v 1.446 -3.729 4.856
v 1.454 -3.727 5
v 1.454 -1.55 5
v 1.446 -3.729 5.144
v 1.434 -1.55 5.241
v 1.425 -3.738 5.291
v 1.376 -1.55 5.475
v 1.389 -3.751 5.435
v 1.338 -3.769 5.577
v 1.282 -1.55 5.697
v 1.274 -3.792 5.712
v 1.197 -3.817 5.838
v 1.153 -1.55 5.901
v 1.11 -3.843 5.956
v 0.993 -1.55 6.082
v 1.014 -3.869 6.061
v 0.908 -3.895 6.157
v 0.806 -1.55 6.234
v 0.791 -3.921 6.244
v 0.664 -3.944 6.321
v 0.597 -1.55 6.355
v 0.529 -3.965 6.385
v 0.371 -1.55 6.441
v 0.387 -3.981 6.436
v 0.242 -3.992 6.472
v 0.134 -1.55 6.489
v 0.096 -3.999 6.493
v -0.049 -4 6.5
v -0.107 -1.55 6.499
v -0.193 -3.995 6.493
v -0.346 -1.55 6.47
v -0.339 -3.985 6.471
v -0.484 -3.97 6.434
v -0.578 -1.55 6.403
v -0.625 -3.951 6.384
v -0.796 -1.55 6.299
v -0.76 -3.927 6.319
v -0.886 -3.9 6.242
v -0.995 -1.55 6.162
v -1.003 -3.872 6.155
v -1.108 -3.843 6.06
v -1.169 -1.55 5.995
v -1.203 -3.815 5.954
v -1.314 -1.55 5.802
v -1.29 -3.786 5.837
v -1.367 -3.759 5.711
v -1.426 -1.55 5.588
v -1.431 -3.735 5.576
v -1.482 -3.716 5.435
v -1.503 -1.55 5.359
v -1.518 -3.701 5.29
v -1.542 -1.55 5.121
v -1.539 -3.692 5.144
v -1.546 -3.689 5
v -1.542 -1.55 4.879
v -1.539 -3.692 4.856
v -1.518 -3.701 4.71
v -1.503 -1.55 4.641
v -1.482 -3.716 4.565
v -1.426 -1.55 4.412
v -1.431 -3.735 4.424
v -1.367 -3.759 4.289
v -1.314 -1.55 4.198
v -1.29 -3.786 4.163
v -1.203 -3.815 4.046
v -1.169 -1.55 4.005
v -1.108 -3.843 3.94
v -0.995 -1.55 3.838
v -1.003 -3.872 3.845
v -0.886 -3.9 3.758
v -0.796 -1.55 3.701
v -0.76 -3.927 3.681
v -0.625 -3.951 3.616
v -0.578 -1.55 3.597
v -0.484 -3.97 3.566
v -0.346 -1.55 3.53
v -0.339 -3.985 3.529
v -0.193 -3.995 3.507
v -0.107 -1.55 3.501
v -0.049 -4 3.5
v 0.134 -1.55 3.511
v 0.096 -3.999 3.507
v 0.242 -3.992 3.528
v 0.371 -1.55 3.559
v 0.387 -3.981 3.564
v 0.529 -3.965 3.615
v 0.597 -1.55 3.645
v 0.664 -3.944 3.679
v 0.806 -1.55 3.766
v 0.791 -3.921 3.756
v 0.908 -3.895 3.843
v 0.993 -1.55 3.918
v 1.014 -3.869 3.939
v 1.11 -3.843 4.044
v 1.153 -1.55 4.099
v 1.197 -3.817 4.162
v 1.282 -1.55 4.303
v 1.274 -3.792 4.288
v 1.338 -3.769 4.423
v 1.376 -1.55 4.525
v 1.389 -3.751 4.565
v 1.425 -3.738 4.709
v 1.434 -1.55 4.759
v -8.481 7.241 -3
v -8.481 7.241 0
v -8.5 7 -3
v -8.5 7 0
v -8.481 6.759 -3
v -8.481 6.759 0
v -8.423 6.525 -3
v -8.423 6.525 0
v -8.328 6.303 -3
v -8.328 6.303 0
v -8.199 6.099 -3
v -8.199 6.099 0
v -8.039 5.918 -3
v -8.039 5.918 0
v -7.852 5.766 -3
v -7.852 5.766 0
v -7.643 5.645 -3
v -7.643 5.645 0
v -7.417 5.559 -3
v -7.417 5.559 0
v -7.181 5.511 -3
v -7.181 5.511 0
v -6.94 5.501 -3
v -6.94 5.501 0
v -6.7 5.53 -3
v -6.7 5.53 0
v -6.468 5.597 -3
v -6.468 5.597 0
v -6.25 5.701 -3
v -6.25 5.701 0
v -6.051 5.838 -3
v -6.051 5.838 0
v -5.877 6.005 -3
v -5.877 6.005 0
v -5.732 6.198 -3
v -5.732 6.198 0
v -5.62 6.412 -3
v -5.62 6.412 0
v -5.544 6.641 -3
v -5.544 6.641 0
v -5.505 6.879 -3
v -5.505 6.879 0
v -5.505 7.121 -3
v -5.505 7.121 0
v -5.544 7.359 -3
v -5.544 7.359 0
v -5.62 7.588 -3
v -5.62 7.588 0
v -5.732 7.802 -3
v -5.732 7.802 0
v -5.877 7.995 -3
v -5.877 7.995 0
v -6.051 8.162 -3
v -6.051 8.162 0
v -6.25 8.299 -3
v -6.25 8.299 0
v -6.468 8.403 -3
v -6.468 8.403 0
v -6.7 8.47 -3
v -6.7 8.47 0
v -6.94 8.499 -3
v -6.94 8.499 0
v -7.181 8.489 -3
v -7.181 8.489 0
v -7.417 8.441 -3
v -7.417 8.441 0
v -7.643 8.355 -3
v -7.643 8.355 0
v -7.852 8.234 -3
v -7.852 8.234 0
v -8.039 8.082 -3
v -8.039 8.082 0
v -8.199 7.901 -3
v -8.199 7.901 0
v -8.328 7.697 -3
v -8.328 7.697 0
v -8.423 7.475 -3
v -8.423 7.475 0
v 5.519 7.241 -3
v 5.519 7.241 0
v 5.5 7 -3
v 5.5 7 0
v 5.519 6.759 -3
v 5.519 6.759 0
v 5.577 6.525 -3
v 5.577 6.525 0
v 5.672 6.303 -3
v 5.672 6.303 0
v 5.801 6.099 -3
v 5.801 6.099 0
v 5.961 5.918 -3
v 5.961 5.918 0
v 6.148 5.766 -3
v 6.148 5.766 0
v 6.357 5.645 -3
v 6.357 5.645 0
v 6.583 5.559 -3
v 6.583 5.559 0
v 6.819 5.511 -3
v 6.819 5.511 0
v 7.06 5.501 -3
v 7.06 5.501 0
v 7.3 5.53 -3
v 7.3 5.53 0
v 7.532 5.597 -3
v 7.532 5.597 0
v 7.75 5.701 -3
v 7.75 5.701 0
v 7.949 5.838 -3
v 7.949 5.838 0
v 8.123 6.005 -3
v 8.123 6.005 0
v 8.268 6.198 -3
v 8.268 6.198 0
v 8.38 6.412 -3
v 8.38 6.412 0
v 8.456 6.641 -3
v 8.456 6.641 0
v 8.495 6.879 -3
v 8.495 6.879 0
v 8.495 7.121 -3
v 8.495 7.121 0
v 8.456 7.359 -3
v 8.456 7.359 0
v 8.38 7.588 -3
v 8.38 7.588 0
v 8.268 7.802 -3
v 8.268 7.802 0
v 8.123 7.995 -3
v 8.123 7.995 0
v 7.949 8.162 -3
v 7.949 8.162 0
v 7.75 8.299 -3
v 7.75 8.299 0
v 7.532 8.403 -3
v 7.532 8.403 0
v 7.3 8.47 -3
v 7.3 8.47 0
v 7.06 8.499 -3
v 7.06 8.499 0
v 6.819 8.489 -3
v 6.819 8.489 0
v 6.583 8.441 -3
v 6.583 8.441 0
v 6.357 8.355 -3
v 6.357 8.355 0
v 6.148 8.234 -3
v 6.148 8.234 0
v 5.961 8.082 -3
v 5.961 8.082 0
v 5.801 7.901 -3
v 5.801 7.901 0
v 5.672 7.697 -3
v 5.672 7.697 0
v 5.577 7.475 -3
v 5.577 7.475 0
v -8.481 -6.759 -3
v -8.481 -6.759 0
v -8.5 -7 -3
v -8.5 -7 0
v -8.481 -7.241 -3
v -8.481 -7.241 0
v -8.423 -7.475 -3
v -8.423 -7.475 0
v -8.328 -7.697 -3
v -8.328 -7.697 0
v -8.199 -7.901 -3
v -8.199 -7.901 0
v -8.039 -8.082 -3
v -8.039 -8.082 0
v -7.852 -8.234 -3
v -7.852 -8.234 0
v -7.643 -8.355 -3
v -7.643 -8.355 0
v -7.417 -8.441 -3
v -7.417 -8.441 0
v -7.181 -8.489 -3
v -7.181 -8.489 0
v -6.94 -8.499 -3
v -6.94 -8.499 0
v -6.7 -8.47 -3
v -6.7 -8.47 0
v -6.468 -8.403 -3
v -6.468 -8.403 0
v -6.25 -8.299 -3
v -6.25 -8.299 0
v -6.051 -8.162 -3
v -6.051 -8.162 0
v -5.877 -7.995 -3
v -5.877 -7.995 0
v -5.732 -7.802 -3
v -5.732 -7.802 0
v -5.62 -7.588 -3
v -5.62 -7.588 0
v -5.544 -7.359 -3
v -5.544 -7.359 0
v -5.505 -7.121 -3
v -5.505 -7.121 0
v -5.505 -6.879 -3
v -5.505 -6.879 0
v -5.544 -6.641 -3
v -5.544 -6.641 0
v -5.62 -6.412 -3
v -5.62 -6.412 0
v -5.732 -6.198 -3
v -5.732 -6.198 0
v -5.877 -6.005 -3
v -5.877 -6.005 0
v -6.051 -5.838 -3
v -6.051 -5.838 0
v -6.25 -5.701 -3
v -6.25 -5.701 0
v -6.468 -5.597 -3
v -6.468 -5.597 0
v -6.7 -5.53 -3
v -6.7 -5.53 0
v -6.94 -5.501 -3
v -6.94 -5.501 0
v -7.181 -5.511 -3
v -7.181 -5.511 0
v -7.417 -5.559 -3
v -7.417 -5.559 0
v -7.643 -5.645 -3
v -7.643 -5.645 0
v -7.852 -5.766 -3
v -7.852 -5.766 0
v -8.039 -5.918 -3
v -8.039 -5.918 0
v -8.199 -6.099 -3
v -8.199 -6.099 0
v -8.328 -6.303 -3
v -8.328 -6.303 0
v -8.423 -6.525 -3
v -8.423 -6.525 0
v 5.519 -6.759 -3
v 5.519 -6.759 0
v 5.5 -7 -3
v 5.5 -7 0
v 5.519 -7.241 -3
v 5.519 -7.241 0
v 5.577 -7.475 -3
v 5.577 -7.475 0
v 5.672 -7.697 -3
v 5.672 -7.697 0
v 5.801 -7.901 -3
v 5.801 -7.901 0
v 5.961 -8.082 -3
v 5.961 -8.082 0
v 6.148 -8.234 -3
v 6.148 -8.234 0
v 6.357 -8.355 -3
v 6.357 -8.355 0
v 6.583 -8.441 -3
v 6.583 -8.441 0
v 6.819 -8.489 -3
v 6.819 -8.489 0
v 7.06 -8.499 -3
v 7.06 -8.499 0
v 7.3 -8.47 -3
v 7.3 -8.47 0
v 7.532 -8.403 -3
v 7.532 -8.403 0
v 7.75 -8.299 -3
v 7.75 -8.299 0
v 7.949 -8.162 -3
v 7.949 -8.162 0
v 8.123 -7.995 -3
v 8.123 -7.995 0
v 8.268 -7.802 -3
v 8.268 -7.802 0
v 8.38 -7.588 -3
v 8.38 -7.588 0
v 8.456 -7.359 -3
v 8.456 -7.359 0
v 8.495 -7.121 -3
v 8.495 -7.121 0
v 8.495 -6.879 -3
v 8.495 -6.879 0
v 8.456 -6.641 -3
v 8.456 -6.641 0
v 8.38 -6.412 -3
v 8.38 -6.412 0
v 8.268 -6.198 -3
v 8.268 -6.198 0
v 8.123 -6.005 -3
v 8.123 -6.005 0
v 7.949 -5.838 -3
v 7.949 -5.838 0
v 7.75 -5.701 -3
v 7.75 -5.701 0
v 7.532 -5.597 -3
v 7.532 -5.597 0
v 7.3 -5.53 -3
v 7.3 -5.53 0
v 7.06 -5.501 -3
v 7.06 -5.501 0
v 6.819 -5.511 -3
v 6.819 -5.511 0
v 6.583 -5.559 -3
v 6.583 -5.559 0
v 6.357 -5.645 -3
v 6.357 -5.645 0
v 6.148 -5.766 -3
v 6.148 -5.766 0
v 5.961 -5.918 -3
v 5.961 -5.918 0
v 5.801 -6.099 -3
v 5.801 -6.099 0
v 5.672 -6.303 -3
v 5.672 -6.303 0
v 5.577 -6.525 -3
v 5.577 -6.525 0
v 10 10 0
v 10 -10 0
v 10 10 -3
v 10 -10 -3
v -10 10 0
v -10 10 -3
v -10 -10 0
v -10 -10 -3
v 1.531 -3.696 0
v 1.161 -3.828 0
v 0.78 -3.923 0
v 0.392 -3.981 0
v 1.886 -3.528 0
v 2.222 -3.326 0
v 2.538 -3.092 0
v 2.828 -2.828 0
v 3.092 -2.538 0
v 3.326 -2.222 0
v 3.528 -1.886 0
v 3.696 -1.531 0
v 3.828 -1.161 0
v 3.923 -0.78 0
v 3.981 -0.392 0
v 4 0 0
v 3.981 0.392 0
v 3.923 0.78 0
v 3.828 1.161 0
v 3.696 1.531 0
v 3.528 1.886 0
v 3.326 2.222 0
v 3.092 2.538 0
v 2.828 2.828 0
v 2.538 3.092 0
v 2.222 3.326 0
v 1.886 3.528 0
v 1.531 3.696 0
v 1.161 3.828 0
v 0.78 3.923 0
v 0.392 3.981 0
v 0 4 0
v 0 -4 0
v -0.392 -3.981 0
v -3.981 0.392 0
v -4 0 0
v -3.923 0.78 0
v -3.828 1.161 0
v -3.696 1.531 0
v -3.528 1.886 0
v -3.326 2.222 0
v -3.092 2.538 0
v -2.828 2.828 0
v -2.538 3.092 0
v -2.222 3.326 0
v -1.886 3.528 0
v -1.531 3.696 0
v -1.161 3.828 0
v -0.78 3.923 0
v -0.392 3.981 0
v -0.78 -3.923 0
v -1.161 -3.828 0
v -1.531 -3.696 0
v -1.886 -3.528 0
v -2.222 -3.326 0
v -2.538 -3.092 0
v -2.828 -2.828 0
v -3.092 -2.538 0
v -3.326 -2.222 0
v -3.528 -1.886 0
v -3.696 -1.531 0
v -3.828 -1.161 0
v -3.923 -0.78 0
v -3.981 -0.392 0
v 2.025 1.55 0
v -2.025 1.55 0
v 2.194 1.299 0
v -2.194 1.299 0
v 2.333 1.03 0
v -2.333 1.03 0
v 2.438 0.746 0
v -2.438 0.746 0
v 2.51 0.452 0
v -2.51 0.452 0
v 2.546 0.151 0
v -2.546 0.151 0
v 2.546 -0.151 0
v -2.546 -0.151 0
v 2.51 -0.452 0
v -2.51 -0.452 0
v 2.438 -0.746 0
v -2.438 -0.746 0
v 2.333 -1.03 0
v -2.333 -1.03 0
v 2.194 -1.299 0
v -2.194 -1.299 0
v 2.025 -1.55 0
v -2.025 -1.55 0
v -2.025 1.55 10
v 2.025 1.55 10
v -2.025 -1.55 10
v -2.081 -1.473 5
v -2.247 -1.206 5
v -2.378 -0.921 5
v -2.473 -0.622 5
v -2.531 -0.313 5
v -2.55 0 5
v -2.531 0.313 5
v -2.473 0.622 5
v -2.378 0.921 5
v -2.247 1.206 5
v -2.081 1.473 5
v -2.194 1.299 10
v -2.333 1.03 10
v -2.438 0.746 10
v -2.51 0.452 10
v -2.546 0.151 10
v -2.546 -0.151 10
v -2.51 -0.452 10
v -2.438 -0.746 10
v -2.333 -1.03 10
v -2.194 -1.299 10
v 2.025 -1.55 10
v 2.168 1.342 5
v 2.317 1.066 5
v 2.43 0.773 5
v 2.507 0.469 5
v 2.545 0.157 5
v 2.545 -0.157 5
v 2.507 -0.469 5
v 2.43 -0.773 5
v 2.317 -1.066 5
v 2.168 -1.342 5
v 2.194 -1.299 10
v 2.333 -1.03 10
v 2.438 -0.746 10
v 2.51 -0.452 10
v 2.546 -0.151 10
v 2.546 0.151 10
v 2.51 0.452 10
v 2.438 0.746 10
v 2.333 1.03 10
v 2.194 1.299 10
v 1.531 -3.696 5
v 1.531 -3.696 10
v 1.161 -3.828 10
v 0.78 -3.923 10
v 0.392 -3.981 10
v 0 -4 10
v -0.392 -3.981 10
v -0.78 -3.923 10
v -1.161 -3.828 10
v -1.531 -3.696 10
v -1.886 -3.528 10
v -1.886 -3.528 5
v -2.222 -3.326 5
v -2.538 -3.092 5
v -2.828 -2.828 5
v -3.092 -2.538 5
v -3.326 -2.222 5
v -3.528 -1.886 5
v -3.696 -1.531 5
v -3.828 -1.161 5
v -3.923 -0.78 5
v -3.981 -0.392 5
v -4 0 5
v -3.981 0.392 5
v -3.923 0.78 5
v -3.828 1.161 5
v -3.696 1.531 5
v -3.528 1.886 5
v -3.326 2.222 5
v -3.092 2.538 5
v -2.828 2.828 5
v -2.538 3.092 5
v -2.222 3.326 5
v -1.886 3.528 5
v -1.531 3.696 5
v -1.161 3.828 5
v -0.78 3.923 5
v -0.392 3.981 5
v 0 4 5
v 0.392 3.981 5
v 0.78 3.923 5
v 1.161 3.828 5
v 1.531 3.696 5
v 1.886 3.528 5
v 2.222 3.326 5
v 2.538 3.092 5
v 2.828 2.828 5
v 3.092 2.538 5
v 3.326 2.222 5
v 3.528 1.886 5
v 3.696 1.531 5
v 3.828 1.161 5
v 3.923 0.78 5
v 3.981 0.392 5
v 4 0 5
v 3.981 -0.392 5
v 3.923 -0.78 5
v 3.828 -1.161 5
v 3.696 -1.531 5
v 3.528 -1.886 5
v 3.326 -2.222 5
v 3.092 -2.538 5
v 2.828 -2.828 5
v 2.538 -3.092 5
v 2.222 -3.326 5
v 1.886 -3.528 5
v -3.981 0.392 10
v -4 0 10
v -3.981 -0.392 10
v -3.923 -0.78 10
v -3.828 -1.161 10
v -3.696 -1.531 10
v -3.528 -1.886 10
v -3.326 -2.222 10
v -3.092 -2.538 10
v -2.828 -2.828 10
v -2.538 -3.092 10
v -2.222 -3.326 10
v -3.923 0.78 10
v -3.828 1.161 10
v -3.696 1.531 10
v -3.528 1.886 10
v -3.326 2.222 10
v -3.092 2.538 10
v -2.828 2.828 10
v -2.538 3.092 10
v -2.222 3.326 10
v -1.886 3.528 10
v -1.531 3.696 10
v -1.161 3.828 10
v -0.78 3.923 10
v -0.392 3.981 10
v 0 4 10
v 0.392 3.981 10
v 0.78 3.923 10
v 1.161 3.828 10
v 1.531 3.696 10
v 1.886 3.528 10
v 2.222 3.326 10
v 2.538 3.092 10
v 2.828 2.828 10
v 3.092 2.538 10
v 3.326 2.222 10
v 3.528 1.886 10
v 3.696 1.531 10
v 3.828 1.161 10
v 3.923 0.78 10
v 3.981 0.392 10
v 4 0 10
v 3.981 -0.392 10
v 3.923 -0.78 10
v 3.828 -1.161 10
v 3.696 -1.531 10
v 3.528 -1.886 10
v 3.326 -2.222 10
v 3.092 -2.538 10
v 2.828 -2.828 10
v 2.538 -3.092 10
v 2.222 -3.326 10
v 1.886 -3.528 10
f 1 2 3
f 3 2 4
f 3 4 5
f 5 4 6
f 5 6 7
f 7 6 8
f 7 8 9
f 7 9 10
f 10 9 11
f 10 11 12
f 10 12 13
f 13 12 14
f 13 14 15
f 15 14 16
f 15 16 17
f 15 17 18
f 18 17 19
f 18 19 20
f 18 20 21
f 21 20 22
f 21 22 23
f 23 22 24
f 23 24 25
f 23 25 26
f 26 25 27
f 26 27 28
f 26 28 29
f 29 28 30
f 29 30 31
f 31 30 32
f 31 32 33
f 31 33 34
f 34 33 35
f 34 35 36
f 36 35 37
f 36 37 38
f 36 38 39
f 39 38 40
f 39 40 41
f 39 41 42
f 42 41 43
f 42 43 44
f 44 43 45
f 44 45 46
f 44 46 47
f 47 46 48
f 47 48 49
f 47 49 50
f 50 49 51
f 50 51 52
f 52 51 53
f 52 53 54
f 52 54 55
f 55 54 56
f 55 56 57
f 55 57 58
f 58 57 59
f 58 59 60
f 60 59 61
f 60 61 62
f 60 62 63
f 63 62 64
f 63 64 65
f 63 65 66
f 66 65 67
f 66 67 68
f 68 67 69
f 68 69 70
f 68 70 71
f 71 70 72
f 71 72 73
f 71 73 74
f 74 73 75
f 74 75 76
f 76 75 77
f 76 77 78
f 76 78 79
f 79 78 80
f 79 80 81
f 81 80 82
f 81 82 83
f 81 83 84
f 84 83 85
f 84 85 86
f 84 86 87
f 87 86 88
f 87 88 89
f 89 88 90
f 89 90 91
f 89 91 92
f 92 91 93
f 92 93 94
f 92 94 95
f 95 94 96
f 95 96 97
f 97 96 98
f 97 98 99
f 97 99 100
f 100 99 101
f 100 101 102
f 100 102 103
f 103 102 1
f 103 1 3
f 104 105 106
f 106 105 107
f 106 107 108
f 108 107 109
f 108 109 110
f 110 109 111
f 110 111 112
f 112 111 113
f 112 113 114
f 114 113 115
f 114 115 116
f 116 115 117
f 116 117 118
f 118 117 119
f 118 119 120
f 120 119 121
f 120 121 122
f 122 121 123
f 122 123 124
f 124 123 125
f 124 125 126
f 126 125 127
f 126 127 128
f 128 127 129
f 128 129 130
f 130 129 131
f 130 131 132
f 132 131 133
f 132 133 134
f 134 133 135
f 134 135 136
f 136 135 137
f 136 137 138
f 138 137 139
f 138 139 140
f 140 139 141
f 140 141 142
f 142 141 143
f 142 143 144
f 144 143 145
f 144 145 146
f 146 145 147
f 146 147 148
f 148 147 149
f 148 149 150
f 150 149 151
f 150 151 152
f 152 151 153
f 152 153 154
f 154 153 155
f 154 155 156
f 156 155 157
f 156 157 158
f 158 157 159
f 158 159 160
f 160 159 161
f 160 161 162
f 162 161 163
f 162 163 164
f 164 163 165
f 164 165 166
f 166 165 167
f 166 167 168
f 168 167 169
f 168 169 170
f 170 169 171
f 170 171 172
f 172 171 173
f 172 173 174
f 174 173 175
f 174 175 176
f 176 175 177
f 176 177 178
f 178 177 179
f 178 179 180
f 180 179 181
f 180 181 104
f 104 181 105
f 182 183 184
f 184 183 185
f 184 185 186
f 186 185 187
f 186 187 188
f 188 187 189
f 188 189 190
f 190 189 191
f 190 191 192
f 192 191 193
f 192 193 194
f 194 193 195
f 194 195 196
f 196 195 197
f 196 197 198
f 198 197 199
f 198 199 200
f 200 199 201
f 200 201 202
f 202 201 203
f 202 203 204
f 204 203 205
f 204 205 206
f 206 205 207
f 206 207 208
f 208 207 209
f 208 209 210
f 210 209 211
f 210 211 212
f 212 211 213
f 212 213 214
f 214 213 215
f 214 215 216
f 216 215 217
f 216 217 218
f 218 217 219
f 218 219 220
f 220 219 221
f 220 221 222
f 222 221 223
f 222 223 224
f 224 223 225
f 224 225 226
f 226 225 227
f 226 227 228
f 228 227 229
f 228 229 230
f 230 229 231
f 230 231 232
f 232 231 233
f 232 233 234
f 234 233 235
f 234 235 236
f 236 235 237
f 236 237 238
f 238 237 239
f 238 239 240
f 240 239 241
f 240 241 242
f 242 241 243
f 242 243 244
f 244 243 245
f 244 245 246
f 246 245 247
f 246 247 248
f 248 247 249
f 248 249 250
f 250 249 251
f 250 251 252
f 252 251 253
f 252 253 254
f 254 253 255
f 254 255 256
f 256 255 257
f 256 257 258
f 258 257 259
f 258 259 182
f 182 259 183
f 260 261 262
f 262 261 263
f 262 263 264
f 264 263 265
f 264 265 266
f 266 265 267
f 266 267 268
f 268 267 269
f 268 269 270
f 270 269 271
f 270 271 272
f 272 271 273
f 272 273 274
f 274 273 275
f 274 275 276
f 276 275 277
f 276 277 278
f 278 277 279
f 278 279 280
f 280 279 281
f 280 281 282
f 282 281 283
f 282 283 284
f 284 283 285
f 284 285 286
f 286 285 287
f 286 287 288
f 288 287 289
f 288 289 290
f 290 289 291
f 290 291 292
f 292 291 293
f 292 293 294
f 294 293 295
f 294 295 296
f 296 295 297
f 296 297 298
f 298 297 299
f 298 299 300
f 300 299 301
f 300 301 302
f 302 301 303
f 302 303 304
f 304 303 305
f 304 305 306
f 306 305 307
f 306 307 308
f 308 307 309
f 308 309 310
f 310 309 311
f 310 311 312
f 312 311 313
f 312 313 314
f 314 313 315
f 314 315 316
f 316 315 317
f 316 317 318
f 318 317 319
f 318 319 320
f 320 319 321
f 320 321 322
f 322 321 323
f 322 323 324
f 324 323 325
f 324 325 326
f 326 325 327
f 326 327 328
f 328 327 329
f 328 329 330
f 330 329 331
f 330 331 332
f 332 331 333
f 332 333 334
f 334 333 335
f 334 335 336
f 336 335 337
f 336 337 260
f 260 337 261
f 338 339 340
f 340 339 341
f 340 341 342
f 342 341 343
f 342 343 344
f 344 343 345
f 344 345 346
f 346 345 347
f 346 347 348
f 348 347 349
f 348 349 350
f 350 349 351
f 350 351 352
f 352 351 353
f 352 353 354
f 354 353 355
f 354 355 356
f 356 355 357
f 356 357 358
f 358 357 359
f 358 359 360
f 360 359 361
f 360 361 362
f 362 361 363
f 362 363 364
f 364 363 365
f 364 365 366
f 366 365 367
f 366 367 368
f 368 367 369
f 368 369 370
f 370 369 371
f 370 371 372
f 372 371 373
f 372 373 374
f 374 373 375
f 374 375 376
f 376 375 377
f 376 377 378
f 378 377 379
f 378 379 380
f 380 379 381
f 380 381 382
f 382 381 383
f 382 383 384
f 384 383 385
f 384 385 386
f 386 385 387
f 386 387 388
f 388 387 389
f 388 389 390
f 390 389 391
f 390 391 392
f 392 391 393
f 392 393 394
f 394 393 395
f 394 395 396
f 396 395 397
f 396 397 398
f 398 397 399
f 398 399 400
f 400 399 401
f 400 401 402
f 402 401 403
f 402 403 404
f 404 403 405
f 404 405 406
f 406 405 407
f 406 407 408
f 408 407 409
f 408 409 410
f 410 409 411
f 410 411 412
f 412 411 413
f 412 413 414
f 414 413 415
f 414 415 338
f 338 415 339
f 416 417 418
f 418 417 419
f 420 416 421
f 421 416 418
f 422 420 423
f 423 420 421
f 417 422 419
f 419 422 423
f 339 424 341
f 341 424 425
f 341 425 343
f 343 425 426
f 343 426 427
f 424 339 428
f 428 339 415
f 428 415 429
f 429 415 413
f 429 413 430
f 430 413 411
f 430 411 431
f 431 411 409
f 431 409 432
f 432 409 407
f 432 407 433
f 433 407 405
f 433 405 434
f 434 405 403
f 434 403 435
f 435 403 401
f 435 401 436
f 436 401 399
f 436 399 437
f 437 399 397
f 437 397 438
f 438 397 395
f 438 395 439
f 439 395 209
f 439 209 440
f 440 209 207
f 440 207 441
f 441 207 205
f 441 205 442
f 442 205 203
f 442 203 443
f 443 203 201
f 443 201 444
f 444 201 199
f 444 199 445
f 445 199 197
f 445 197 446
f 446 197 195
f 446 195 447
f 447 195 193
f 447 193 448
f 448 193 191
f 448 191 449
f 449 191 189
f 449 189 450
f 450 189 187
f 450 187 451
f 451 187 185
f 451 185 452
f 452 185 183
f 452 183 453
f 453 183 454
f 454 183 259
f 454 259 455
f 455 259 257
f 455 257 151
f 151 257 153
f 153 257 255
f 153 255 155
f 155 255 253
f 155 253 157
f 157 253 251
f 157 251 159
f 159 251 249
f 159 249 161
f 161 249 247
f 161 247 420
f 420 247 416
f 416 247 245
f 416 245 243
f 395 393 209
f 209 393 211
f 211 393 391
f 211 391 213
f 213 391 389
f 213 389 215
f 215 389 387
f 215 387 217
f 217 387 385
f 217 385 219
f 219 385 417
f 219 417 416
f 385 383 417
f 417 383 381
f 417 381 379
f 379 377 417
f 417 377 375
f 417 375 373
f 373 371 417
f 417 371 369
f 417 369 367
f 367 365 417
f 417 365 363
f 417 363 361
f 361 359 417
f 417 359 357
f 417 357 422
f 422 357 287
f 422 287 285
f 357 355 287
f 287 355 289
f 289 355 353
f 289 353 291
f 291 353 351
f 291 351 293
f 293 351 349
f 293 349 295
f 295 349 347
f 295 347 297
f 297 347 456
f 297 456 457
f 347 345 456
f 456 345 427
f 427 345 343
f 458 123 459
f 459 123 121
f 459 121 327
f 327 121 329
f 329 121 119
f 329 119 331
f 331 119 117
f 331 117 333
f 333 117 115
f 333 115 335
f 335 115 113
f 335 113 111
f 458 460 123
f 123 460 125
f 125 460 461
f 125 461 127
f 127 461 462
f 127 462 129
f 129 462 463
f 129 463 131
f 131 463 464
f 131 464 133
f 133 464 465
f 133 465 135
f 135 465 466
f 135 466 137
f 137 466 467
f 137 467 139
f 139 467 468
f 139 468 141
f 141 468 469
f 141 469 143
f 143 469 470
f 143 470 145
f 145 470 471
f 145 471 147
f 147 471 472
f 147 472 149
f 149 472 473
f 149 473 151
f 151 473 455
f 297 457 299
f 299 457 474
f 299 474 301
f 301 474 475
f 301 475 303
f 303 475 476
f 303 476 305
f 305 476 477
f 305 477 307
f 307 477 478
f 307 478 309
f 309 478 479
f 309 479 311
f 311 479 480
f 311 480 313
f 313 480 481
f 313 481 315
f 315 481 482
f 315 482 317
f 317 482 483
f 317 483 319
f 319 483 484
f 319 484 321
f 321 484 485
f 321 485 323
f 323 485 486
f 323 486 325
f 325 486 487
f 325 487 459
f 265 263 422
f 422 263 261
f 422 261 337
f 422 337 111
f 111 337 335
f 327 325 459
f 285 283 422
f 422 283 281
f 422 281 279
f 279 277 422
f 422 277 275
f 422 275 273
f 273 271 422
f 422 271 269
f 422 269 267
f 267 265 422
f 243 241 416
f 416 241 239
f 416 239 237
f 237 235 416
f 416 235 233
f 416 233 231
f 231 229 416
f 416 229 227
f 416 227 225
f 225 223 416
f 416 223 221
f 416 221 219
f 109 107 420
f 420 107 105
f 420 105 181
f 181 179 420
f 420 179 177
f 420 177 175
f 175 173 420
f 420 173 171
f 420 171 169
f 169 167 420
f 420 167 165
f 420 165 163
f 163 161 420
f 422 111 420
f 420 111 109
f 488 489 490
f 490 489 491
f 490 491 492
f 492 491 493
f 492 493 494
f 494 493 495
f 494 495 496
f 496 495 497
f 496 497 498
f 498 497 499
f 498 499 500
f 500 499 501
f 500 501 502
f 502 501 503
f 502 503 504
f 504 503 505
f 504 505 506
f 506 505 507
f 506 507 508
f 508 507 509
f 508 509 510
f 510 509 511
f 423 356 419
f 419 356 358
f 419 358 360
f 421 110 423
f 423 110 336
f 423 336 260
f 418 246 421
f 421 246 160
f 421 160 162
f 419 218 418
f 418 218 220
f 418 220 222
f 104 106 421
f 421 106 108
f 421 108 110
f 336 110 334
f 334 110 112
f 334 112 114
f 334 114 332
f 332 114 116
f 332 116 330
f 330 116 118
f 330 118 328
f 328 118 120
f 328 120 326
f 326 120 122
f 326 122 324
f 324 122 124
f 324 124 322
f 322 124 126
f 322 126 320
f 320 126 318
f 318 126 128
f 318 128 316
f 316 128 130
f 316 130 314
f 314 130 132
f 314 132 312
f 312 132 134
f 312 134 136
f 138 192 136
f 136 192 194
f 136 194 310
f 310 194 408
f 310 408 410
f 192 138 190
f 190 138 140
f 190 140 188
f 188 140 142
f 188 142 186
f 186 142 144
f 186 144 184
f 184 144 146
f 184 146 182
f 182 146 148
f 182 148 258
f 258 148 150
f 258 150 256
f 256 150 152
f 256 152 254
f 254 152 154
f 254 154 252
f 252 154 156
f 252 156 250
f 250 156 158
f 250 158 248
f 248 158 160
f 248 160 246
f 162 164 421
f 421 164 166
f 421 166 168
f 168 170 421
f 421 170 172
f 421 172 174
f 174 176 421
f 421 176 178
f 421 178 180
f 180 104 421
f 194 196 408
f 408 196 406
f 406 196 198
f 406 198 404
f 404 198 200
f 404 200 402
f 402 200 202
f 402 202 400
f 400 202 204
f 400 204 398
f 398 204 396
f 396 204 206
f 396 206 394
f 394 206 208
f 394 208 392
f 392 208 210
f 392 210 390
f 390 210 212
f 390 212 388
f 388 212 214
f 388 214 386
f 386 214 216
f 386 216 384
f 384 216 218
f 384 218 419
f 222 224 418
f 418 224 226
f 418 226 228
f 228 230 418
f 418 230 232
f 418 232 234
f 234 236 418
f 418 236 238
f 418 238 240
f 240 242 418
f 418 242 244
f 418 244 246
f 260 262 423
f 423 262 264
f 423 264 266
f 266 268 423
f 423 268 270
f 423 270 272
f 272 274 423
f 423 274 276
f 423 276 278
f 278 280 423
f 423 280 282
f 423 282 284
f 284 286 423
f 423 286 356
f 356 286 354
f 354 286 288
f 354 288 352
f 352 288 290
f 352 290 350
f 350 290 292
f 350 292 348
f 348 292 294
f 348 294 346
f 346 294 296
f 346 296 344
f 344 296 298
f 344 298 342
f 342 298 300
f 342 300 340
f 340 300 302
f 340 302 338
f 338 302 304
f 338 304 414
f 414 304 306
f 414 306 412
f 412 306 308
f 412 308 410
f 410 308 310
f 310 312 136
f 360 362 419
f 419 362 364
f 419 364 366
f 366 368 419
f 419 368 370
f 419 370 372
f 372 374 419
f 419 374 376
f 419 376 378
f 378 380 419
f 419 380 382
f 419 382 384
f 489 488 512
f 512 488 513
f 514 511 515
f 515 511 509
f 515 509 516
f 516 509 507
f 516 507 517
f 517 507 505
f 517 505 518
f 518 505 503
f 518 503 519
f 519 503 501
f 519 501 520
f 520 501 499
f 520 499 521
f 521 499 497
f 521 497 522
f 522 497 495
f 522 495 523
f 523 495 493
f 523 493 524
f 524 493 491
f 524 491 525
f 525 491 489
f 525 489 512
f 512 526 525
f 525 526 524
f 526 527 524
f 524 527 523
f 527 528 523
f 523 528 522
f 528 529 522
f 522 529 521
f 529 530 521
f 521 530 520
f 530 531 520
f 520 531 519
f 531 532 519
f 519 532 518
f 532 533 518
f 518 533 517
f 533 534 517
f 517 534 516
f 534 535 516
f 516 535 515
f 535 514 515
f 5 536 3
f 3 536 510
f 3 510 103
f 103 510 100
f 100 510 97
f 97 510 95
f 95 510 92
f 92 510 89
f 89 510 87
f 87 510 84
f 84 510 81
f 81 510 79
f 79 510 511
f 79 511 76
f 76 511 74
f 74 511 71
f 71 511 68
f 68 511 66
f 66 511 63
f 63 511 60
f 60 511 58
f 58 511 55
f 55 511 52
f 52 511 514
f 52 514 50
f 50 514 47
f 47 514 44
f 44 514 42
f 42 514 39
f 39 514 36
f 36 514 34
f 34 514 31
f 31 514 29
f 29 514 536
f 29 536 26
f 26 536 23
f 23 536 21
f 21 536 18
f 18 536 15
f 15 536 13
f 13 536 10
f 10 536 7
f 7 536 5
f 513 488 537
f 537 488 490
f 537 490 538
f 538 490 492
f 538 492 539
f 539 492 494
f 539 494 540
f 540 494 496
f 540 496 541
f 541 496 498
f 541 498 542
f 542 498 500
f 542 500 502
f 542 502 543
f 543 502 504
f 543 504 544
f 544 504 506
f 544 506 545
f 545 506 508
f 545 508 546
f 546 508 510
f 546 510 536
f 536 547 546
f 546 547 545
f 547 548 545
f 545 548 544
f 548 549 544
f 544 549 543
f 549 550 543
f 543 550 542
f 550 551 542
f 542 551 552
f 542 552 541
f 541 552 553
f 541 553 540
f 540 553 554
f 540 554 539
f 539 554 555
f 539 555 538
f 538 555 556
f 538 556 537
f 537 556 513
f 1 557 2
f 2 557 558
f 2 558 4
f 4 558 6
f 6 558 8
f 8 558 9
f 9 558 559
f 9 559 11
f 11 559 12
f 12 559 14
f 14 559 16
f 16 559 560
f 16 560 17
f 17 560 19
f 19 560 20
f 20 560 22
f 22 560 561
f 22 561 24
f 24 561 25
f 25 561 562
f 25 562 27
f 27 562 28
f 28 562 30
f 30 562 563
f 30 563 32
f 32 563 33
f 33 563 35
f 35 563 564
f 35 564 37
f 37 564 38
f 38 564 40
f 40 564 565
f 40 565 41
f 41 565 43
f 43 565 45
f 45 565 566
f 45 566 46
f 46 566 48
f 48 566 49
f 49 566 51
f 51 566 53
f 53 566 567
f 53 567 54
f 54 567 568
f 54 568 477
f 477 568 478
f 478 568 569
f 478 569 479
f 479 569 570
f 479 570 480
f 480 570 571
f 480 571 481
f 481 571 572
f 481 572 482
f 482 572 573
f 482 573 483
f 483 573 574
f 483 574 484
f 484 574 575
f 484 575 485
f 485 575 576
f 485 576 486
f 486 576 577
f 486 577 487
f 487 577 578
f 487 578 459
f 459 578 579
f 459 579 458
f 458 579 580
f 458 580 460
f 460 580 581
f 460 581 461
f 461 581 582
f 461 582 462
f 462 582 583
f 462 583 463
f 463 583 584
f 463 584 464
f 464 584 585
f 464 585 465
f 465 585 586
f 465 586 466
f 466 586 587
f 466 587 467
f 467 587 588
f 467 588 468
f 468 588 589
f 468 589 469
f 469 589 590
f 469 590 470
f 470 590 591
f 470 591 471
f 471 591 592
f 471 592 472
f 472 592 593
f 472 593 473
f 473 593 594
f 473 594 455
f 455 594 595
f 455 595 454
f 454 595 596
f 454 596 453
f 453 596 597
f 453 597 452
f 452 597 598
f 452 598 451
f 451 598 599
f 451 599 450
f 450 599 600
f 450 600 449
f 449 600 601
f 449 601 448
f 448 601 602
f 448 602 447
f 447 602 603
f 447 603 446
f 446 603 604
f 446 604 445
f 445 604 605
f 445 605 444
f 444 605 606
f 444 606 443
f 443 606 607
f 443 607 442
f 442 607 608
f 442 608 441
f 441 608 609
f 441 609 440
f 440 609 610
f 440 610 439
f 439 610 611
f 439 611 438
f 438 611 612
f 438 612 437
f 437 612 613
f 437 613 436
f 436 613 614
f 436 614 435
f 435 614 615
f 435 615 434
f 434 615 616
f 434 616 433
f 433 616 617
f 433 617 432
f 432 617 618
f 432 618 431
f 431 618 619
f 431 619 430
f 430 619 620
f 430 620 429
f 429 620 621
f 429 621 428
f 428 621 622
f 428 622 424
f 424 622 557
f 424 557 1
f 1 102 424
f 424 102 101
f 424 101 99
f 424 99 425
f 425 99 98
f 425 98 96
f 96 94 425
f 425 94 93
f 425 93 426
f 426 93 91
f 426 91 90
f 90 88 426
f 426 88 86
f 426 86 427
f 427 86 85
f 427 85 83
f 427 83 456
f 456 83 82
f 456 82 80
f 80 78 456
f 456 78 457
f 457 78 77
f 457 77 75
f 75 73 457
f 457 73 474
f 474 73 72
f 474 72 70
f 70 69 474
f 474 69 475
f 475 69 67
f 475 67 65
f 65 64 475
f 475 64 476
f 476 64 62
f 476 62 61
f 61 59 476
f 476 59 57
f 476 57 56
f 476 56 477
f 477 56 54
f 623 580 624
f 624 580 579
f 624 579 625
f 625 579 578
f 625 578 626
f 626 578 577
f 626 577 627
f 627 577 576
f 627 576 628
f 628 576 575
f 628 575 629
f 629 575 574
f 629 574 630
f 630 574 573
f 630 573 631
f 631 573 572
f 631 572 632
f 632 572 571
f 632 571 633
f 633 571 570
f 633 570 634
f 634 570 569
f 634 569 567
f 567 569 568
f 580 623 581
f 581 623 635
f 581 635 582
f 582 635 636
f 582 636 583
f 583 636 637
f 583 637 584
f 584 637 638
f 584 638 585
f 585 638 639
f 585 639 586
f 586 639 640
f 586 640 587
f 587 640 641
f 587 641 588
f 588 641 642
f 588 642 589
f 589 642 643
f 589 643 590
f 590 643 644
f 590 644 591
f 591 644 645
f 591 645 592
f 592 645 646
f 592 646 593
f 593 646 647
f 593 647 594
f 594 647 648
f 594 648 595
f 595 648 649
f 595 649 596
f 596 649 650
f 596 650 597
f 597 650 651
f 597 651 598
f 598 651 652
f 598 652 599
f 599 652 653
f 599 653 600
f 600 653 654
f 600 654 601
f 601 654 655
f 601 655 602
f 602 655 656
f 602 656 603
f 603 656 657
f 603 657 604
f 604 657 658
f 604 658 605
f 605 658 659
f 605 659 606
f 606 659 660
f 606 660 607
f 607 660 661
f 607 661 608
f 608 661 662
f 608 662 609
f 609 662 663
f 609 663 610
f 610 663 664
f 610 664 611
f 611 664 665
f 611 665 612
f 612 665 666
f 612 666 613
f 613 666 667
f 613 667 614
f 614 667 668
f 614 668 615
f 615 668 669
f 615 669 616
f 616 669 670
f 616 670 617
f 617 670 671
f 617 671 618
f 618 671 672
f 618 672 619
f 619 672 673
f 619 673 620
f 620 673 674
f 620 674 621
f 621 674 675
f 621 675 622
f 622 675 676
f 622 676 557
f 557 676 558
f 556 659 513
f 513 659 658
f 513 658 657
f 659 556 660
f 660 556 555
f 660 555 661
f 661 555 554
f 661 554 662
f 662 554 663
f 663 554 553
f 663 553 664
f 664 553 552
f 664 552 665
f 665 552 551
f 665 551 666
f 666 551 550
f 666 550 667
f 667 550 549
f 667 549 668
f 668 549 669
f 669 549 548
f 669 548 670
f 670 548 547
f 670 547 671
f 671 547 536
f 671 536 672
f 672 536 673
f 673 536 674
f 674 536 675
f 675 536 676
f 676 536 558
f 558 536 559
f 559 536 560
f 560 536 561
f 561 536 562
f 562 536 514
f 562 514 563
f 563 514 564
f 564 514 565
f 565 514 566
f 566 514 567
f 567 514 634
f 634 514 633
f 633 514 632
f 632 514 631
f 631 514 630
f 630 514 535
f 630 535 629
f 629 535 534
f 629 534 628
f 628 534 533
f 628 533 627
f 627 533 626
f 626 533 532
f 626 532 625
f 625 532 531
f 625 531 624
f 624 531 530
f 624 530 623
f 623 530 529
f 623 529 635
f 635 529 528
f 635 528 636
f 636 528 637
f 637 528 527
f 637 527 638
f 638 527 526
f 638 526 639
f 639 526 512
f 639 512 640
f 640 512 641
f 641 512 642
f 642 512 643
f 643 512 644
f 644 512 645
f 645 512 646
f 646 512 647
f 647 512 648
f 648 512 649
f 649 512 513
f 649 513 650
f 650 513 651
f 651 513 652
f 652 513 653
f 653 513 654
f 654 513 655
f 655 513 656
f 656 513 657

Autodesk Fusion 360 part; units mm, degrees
sketch "Sketch1" plane through (0, 0, 0) normal (0, 0, 1) x (1, 0, 0)
  line L0 (2.55, 1.55) -> (-2.55, -1.55) construction
  line L1 (2.55, 1.55) -> (-2.55, -1.55) construction
  line L2 (-2.55, 1.55) -> (-2.55, -1.55)
  circle A0 centre (0, 0) radius 4
  line L3 (-2.55, 1.55) -> (2.55, -1.55) construction
  line L4 (-2.55, -1.55) -> (2.55, -1.55)
  line L5 (2.55, 1.55) -> (-2.55, 1.55)
  line L6 (2.55, 1.55) -> (-2.55, -1.55) construction
  line L7 (-2.55, 1.55) -> (2.55, -1.55) construction
  line L8 (-2.55, 1.55) -> (2.55, -1.55) construction
  circle A1 centre (0, 0) radius 2.55
  line L9 (2.55, -1.55) -> (2.55, 1.55)
  line L10 (-10, 10) -> (10, 10)
  line L11 (10, 10) -> (10, -10)
  line L12 (10, -10) -> (-10, -10)
  line L13 (-10, -10) -> (-10, 10)
  circle A2 centre (-7, 7) radius 1.5
  line L14 (0, 10) -> (0, 7.5)
  circle A3 centre (7, 7) radius 1.5
  line L15 (-10, 0) -> (-8.5, 0)
  circle A4 centre (-7, -7) radius 1.5
  circle A5 centre (7, -7) radius 1.5
  dimension "d1" = 5.1
  dimension "d2" = 5.1
  dimension "d3" = 3.1
  dimension "d4" = 8
  dimension "d5" = 5.1
  dimension "d6" = 5.1
  dimension "d7" = 20
  dimension "d8" = 20
  dimension "d9" = 3
extrude "Extrude1" add sketch "Sketch1" along normal blind 10 contours L2 L5 A1 | L2 L4 A1 | L5 A1 | L4 A1 | L5 A1 L9 | L4 A1 L9 | A0 makes body 1
extrude "Extrude2" add sketch "Sketch1" against normal blind 3 separate body contours L10 L11 L12 L13 makes body 2
extrude "Extrude3" add sketch "Sketch1" against normal blind 3 contours L2 L5 A1 | L2 L4 A1 | L4 L5 A1 | L5 A1 | L4 A1 | L5 A1 L9 | L4 A1 L9 | A0 bodies 1 2
sketch "Sketch2" plane through (0, -1.55, 0) normal (0, 1, 0) x (-1, 0, 0)
  line L0 (-2.0248, 0) -> (2.0248, 0)
  line L1 (2.0248, 0) -> (2.0248, 10)
  line L2 (2.0248, 10) -> (-2.0248, 10)
  line L3 (-2.0248, 10) -> (-2.0248, 0)
  circle A0 centre (0.0464, 5) radius 1.5
  dimension "d18" = 3
extrude "Extrude4" cut sketch "Sketch2" against normal blind 3 contours A0 bodies 1
